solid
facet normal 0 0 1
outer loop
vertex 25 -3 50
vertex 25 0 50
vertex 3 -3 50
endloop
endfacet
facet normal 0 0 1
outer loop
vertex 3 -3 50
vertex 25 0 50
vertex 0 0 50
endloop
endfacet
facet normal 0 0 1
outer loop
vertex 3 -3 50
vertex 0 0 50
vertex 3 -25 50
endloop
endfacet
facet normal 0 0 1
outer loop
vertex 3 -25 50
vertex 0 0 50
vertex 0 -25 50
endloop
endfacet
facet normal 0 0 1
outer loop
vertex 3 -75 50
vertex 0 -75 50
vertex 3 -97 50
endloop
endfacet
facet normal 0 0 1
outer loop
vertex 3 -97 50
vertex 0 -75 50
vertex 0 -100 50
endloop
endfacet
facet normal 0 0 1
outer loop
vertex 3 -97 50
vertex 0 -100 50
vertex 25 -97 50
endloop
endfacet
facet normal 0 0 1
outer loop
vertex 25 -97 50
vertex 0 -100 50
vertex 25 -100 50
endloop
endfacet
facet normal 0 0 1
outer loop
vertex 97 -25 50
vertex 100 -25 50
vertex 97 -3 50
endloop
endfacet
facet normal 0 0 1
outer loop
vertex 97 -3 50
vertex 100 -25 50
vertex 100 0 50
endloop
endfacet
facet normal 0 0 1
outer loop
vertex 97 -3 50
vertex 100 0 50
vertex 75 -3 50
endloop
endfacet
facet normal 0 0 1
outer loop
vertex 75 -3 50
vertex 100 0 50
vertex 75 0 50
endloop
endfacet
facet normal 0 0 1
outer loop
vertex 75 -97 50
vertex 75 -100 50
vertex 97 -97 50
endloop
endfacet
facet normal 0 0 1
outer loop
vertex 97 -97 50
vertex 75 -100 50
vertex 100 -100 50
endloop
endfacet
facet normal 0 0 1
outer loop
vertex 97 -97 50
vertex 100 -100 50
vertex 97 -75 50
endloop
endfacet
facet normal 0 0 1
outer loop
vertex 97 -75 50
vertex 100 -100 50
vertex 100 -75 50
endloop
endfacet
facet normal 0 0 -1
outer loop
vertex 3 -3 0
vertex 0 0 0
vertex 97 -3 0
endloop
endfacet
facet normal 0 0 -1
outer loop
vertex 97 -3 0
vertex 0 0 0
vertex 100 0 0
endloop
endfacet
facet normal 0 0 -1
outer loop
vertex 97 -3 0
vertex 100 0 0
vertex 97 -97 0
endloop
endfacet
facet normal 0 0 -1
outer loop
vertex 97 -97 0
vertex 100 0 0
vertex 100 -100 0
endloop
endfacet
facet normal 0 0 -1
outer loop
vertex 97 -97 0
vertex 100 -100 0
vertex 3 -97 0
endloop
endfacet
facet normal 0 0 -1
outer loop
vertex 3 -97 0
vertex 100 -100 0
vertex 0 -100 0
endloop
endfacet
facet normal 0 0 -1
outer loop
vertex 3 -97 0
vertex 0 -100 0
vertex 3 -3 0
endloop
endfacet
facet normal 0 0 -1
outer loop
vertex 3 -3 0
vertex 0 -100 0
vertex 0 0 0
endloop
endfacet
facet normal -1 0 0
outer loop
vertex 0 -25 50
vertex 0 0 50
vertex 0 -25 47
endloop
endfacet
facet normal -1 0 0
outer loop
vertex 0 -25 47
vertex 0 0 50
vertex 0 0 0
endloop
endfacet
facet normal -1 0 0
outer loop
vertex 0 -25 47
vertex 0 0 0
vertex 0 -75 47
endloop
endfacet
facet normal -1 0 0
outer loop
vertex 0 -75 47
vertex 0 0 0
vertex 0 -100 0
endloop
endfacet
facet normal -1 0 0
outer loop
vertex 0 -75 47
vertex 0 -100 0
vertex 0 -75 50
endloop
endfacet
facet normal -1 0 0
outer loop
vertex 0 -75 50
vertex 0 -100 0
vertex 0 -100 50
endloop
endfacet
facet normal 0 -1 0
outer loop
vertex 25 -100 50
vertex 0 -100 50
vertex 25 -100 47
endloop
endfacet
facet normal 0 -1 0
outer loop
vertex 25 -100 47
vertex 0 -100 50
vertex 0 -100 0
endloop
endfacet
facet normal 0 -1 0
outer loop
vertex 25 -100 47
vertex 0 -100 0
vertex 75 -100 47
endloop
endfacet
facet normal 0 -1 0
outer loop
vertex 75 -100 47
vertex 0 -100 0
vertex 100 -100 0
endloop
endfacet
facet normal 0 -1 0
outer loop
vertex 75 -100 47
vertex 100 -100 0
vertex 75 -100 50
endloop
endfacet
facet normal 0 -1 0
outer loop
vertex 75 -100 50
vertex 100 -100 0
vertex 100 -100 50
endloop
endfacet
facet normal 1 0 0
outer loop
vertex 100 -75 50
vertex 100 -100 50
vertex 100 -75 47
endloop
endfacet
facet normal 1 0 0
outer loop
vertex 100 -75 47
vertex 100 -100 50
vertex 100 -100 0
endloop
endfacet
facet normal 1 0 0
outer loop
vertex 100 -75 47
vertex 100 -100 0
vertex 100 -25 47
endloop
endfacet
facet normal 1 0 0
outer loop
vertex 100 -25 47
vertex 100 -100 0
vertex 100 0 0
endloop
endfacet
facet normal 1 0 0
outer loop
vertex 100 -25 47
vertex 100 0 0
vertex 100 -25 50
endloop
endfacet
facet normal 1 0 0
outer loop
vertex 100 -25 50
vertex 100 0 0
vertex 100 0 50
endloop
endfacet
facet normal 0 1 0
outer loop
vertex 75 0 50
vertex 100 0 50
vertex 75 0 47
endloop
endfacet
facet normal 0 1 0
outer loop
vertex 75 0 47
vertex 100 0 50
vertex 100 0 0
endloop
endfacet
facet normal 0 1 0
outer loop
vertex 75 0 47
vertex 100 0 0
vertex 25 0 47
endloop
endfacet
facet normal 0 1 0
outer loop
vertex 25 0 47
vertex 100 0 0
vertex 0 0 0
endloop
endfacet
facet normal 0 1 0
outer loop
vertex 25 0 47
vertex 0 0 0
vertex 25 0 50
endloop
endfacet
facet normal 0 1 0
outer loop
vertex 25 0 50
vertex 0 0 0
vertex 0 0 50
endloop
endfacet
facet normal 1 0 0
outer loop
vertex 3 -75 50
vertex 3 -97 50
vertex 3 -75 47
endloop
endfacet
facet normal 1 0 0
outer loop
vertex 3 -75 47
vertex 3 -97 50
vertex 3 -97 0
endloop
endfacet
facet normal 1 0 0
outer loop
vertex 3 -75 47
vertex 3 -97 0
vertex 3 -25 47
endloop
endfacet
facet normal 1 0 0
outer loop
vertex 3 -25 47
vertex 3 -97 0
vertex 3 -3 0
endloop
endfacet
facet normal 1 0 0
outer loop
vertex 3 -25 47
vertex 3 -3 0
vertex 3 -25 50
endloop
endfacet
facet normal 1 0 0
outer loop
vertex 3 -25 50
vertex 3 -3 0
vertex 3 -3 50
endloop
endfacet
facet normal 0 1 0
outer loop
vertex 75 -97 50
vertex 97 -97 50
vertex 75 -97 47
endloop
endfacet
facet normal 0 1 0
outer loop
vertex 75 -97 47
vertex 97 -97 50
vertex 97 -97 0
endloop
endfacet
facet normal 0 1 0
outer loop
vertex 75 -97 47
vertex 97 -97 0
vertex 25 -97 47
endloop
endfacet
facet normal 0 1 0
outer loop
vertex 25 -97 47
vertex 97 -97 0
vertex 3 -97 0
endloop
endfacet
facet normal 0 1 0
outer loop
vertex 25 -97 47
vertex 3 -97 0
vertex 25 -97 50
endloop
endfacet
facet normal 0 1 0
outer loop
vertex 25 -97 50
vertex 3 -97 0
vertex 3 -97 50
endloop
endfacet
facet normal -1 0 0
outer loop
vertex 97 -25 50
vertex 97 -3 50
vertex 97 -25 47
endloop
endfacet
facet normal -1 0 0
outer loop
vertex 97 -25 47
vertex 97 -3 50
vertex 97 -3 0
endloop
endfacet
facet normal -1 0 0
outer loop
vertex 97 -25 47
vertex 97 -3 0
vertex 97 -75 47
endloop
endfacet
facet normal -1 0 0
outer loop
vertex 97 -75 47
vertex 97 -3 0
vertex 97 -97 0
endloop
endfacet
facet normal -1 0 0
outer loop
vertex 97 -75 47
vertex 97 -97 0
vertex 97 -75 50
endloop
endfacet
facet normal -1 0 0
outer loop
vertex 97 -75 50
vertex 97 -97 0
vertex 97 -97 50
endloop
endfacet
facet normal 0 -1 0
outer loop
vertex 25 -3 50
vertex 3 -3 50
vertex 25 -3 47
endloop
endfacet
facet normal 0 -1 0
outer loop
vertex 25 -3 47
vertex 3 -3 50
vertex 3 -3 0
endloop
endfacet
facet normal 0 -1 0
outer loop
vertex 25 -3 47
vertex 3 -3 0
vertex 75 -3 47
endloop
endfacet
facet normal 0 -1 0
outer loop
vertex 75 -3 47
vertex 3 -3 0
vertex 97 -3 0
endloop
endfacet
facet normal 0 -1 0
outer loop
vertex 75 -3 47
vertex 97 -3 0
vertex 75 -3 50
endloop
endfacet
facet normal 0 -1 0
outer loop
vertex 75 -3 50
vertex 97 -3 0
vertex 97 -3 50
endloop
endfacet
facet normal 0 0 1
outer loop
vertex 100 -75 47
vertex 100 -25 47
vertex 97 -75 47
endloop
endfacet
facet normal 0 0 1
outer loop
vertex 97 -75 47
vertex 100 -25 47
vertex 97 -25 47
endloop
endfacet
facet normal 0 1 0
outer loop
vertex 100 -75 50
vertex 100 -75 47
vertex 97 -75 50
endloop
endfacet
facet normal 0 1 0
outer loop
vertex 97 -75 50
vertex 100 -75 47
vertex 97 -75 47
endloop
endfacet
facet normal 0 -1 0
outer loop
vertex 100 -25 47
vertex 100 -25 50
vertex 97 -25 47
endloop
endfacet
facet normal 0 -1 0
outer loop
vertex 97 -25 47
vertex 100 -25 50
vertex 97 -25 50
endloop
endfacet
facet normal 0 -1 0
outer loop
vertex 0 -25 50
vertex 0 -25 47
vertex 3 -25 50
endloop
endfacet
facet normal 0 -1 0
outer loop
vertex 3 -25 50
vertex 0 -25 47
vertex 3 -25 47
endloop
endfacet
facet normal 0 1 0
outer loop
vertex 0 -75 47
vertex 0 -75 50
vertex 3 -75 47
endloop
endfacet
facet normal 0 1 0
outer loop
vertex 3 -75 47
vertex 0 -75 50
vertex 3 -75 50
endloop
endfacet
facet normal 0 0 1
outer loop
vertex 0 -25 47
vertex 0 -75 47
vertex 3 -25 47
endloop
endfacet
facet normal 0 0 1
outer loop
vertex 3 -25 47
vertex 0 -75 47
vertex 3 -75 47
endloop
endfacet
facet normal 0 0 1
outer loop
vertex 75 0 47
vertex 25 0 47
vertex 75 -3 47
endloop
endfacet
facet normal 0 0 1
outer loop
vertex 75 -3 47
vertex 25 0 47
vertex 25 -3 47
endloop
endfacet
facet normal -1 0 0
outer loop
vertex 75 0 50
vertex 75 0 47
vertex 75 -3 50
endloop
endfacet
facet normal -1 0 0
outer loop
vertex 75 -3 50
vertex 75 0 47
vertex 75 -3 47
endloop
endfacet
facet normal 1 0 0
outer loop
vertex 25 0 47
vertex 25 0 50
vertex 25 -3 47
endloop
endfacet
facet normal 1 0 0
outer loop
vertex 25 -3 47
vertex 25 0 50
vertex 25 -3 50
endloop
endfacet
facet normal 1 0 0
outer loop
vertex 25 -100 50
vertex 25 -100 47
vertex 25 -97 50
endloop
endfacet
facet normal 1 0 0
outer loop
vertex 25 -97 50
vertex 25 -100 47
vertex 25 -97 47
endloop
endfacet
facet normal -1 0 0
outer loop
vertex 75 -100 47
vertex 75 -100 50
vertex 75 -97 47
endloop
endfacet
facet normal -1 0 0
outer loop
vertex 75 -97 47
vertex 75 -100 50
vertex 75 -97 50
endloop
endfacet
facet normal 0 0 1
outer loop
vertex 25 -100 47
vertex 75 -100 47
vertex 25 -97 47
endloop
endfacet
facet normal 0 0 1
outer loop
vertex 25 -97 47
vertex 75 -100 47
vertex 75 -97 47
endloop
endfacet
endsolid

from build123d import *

# Parameters (mm, degrees)
SKETCH_1_W          = 100
SKETCH_1_H          = 100
SKETCH_1_W_2        = 94
SKETCH_1_H_2        = 94
EXTRUDE_1_DEPTH     = 50
SKETCH_2_W          = 3
SKETCH_2_H          = 50
CUT_EXTRUDE_1_DEPTH = 151
SKETCH_3_W          = 50
SKETCH_3_H          = 3
CUT_EXTRUDE_2_DEPTH = 151


with BuildPart() as part:
    # 草图1 → 凸台-拉伸1 (new body)
    with BuildSketch(Plane.XY):
        with Locations((50, -50)):
            Rectangle(SKETCH_1_W, SKETCH_1_H)
        with Locations((50, -50)):
            Rectangle(SKETCH_1_W_2, SKETCH_1_H_2, mode=Mode.SUBTRACT)
    extrude(amount=EXTRUDE_1_DEPTH)

    # 草图2 → 切除-拉伸1 (cut, through all)
    with BuildSketch(Plane.ZY):
        with Locations((48.5, -50)):
            Rectangle(SKETCH_2_W, SKETCH_2_H)
    extrude(amount=-CUT_EXTRUDE_1_DEPTH, mode=Mode.SUBTRACT)

    # 草图3 → 切除-拉伸2 (cut, through all)
    with BuildSketch(Plane.XZ.offset(100)):
        with Locations((50, 48.5)):
            Rectangle(SKETCH_3_W, SKETCH_3_H)
    extrude(amount=-CUT_EXTRUDE_2_DEPTH, mode=Mode.SUBTRACT)


solid = part.part
